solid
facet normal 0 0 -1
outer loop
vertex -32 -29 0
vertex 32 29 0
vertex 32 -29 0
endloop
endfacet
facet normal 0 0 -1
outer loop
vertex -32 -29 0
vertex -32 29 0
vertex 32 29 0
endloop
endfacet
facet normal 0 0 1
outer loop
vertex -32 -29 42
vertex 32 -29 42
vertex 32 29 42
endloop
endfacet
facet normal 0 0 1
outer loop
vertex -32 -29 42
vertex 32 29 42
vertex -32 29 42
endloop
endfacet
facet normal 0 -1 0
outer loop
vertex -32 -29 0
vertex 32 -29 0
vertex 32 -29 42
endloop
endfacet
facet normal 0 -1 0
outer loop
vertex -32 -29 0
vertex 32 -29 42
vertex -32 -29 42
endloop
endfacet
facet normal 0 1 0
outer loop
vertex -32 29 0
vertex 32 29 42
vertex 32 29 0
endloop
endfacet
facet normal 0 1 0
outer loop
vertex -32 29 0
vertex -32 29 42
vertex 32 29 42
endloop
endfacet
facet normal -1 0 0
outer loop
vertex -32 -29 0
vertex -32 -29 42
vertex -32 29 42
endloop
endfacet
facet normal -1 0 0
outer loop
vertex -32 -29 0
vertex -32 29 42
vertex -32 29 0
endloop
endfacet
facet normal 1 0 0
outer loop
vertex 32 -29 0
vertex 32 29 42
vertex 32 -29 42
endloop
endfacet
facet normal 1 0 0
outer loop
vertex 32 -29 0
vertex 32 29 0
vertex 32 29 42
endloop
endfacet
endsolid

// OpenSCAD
// Gemini 4 Argon Parametric OpenSCAD — PRT-02: 15°-Step Ratcheting Tilt Mast Hinge
$fn = 64;
translate([-32.00, -29.00, 0])
  cube([64, 58, 42]);
